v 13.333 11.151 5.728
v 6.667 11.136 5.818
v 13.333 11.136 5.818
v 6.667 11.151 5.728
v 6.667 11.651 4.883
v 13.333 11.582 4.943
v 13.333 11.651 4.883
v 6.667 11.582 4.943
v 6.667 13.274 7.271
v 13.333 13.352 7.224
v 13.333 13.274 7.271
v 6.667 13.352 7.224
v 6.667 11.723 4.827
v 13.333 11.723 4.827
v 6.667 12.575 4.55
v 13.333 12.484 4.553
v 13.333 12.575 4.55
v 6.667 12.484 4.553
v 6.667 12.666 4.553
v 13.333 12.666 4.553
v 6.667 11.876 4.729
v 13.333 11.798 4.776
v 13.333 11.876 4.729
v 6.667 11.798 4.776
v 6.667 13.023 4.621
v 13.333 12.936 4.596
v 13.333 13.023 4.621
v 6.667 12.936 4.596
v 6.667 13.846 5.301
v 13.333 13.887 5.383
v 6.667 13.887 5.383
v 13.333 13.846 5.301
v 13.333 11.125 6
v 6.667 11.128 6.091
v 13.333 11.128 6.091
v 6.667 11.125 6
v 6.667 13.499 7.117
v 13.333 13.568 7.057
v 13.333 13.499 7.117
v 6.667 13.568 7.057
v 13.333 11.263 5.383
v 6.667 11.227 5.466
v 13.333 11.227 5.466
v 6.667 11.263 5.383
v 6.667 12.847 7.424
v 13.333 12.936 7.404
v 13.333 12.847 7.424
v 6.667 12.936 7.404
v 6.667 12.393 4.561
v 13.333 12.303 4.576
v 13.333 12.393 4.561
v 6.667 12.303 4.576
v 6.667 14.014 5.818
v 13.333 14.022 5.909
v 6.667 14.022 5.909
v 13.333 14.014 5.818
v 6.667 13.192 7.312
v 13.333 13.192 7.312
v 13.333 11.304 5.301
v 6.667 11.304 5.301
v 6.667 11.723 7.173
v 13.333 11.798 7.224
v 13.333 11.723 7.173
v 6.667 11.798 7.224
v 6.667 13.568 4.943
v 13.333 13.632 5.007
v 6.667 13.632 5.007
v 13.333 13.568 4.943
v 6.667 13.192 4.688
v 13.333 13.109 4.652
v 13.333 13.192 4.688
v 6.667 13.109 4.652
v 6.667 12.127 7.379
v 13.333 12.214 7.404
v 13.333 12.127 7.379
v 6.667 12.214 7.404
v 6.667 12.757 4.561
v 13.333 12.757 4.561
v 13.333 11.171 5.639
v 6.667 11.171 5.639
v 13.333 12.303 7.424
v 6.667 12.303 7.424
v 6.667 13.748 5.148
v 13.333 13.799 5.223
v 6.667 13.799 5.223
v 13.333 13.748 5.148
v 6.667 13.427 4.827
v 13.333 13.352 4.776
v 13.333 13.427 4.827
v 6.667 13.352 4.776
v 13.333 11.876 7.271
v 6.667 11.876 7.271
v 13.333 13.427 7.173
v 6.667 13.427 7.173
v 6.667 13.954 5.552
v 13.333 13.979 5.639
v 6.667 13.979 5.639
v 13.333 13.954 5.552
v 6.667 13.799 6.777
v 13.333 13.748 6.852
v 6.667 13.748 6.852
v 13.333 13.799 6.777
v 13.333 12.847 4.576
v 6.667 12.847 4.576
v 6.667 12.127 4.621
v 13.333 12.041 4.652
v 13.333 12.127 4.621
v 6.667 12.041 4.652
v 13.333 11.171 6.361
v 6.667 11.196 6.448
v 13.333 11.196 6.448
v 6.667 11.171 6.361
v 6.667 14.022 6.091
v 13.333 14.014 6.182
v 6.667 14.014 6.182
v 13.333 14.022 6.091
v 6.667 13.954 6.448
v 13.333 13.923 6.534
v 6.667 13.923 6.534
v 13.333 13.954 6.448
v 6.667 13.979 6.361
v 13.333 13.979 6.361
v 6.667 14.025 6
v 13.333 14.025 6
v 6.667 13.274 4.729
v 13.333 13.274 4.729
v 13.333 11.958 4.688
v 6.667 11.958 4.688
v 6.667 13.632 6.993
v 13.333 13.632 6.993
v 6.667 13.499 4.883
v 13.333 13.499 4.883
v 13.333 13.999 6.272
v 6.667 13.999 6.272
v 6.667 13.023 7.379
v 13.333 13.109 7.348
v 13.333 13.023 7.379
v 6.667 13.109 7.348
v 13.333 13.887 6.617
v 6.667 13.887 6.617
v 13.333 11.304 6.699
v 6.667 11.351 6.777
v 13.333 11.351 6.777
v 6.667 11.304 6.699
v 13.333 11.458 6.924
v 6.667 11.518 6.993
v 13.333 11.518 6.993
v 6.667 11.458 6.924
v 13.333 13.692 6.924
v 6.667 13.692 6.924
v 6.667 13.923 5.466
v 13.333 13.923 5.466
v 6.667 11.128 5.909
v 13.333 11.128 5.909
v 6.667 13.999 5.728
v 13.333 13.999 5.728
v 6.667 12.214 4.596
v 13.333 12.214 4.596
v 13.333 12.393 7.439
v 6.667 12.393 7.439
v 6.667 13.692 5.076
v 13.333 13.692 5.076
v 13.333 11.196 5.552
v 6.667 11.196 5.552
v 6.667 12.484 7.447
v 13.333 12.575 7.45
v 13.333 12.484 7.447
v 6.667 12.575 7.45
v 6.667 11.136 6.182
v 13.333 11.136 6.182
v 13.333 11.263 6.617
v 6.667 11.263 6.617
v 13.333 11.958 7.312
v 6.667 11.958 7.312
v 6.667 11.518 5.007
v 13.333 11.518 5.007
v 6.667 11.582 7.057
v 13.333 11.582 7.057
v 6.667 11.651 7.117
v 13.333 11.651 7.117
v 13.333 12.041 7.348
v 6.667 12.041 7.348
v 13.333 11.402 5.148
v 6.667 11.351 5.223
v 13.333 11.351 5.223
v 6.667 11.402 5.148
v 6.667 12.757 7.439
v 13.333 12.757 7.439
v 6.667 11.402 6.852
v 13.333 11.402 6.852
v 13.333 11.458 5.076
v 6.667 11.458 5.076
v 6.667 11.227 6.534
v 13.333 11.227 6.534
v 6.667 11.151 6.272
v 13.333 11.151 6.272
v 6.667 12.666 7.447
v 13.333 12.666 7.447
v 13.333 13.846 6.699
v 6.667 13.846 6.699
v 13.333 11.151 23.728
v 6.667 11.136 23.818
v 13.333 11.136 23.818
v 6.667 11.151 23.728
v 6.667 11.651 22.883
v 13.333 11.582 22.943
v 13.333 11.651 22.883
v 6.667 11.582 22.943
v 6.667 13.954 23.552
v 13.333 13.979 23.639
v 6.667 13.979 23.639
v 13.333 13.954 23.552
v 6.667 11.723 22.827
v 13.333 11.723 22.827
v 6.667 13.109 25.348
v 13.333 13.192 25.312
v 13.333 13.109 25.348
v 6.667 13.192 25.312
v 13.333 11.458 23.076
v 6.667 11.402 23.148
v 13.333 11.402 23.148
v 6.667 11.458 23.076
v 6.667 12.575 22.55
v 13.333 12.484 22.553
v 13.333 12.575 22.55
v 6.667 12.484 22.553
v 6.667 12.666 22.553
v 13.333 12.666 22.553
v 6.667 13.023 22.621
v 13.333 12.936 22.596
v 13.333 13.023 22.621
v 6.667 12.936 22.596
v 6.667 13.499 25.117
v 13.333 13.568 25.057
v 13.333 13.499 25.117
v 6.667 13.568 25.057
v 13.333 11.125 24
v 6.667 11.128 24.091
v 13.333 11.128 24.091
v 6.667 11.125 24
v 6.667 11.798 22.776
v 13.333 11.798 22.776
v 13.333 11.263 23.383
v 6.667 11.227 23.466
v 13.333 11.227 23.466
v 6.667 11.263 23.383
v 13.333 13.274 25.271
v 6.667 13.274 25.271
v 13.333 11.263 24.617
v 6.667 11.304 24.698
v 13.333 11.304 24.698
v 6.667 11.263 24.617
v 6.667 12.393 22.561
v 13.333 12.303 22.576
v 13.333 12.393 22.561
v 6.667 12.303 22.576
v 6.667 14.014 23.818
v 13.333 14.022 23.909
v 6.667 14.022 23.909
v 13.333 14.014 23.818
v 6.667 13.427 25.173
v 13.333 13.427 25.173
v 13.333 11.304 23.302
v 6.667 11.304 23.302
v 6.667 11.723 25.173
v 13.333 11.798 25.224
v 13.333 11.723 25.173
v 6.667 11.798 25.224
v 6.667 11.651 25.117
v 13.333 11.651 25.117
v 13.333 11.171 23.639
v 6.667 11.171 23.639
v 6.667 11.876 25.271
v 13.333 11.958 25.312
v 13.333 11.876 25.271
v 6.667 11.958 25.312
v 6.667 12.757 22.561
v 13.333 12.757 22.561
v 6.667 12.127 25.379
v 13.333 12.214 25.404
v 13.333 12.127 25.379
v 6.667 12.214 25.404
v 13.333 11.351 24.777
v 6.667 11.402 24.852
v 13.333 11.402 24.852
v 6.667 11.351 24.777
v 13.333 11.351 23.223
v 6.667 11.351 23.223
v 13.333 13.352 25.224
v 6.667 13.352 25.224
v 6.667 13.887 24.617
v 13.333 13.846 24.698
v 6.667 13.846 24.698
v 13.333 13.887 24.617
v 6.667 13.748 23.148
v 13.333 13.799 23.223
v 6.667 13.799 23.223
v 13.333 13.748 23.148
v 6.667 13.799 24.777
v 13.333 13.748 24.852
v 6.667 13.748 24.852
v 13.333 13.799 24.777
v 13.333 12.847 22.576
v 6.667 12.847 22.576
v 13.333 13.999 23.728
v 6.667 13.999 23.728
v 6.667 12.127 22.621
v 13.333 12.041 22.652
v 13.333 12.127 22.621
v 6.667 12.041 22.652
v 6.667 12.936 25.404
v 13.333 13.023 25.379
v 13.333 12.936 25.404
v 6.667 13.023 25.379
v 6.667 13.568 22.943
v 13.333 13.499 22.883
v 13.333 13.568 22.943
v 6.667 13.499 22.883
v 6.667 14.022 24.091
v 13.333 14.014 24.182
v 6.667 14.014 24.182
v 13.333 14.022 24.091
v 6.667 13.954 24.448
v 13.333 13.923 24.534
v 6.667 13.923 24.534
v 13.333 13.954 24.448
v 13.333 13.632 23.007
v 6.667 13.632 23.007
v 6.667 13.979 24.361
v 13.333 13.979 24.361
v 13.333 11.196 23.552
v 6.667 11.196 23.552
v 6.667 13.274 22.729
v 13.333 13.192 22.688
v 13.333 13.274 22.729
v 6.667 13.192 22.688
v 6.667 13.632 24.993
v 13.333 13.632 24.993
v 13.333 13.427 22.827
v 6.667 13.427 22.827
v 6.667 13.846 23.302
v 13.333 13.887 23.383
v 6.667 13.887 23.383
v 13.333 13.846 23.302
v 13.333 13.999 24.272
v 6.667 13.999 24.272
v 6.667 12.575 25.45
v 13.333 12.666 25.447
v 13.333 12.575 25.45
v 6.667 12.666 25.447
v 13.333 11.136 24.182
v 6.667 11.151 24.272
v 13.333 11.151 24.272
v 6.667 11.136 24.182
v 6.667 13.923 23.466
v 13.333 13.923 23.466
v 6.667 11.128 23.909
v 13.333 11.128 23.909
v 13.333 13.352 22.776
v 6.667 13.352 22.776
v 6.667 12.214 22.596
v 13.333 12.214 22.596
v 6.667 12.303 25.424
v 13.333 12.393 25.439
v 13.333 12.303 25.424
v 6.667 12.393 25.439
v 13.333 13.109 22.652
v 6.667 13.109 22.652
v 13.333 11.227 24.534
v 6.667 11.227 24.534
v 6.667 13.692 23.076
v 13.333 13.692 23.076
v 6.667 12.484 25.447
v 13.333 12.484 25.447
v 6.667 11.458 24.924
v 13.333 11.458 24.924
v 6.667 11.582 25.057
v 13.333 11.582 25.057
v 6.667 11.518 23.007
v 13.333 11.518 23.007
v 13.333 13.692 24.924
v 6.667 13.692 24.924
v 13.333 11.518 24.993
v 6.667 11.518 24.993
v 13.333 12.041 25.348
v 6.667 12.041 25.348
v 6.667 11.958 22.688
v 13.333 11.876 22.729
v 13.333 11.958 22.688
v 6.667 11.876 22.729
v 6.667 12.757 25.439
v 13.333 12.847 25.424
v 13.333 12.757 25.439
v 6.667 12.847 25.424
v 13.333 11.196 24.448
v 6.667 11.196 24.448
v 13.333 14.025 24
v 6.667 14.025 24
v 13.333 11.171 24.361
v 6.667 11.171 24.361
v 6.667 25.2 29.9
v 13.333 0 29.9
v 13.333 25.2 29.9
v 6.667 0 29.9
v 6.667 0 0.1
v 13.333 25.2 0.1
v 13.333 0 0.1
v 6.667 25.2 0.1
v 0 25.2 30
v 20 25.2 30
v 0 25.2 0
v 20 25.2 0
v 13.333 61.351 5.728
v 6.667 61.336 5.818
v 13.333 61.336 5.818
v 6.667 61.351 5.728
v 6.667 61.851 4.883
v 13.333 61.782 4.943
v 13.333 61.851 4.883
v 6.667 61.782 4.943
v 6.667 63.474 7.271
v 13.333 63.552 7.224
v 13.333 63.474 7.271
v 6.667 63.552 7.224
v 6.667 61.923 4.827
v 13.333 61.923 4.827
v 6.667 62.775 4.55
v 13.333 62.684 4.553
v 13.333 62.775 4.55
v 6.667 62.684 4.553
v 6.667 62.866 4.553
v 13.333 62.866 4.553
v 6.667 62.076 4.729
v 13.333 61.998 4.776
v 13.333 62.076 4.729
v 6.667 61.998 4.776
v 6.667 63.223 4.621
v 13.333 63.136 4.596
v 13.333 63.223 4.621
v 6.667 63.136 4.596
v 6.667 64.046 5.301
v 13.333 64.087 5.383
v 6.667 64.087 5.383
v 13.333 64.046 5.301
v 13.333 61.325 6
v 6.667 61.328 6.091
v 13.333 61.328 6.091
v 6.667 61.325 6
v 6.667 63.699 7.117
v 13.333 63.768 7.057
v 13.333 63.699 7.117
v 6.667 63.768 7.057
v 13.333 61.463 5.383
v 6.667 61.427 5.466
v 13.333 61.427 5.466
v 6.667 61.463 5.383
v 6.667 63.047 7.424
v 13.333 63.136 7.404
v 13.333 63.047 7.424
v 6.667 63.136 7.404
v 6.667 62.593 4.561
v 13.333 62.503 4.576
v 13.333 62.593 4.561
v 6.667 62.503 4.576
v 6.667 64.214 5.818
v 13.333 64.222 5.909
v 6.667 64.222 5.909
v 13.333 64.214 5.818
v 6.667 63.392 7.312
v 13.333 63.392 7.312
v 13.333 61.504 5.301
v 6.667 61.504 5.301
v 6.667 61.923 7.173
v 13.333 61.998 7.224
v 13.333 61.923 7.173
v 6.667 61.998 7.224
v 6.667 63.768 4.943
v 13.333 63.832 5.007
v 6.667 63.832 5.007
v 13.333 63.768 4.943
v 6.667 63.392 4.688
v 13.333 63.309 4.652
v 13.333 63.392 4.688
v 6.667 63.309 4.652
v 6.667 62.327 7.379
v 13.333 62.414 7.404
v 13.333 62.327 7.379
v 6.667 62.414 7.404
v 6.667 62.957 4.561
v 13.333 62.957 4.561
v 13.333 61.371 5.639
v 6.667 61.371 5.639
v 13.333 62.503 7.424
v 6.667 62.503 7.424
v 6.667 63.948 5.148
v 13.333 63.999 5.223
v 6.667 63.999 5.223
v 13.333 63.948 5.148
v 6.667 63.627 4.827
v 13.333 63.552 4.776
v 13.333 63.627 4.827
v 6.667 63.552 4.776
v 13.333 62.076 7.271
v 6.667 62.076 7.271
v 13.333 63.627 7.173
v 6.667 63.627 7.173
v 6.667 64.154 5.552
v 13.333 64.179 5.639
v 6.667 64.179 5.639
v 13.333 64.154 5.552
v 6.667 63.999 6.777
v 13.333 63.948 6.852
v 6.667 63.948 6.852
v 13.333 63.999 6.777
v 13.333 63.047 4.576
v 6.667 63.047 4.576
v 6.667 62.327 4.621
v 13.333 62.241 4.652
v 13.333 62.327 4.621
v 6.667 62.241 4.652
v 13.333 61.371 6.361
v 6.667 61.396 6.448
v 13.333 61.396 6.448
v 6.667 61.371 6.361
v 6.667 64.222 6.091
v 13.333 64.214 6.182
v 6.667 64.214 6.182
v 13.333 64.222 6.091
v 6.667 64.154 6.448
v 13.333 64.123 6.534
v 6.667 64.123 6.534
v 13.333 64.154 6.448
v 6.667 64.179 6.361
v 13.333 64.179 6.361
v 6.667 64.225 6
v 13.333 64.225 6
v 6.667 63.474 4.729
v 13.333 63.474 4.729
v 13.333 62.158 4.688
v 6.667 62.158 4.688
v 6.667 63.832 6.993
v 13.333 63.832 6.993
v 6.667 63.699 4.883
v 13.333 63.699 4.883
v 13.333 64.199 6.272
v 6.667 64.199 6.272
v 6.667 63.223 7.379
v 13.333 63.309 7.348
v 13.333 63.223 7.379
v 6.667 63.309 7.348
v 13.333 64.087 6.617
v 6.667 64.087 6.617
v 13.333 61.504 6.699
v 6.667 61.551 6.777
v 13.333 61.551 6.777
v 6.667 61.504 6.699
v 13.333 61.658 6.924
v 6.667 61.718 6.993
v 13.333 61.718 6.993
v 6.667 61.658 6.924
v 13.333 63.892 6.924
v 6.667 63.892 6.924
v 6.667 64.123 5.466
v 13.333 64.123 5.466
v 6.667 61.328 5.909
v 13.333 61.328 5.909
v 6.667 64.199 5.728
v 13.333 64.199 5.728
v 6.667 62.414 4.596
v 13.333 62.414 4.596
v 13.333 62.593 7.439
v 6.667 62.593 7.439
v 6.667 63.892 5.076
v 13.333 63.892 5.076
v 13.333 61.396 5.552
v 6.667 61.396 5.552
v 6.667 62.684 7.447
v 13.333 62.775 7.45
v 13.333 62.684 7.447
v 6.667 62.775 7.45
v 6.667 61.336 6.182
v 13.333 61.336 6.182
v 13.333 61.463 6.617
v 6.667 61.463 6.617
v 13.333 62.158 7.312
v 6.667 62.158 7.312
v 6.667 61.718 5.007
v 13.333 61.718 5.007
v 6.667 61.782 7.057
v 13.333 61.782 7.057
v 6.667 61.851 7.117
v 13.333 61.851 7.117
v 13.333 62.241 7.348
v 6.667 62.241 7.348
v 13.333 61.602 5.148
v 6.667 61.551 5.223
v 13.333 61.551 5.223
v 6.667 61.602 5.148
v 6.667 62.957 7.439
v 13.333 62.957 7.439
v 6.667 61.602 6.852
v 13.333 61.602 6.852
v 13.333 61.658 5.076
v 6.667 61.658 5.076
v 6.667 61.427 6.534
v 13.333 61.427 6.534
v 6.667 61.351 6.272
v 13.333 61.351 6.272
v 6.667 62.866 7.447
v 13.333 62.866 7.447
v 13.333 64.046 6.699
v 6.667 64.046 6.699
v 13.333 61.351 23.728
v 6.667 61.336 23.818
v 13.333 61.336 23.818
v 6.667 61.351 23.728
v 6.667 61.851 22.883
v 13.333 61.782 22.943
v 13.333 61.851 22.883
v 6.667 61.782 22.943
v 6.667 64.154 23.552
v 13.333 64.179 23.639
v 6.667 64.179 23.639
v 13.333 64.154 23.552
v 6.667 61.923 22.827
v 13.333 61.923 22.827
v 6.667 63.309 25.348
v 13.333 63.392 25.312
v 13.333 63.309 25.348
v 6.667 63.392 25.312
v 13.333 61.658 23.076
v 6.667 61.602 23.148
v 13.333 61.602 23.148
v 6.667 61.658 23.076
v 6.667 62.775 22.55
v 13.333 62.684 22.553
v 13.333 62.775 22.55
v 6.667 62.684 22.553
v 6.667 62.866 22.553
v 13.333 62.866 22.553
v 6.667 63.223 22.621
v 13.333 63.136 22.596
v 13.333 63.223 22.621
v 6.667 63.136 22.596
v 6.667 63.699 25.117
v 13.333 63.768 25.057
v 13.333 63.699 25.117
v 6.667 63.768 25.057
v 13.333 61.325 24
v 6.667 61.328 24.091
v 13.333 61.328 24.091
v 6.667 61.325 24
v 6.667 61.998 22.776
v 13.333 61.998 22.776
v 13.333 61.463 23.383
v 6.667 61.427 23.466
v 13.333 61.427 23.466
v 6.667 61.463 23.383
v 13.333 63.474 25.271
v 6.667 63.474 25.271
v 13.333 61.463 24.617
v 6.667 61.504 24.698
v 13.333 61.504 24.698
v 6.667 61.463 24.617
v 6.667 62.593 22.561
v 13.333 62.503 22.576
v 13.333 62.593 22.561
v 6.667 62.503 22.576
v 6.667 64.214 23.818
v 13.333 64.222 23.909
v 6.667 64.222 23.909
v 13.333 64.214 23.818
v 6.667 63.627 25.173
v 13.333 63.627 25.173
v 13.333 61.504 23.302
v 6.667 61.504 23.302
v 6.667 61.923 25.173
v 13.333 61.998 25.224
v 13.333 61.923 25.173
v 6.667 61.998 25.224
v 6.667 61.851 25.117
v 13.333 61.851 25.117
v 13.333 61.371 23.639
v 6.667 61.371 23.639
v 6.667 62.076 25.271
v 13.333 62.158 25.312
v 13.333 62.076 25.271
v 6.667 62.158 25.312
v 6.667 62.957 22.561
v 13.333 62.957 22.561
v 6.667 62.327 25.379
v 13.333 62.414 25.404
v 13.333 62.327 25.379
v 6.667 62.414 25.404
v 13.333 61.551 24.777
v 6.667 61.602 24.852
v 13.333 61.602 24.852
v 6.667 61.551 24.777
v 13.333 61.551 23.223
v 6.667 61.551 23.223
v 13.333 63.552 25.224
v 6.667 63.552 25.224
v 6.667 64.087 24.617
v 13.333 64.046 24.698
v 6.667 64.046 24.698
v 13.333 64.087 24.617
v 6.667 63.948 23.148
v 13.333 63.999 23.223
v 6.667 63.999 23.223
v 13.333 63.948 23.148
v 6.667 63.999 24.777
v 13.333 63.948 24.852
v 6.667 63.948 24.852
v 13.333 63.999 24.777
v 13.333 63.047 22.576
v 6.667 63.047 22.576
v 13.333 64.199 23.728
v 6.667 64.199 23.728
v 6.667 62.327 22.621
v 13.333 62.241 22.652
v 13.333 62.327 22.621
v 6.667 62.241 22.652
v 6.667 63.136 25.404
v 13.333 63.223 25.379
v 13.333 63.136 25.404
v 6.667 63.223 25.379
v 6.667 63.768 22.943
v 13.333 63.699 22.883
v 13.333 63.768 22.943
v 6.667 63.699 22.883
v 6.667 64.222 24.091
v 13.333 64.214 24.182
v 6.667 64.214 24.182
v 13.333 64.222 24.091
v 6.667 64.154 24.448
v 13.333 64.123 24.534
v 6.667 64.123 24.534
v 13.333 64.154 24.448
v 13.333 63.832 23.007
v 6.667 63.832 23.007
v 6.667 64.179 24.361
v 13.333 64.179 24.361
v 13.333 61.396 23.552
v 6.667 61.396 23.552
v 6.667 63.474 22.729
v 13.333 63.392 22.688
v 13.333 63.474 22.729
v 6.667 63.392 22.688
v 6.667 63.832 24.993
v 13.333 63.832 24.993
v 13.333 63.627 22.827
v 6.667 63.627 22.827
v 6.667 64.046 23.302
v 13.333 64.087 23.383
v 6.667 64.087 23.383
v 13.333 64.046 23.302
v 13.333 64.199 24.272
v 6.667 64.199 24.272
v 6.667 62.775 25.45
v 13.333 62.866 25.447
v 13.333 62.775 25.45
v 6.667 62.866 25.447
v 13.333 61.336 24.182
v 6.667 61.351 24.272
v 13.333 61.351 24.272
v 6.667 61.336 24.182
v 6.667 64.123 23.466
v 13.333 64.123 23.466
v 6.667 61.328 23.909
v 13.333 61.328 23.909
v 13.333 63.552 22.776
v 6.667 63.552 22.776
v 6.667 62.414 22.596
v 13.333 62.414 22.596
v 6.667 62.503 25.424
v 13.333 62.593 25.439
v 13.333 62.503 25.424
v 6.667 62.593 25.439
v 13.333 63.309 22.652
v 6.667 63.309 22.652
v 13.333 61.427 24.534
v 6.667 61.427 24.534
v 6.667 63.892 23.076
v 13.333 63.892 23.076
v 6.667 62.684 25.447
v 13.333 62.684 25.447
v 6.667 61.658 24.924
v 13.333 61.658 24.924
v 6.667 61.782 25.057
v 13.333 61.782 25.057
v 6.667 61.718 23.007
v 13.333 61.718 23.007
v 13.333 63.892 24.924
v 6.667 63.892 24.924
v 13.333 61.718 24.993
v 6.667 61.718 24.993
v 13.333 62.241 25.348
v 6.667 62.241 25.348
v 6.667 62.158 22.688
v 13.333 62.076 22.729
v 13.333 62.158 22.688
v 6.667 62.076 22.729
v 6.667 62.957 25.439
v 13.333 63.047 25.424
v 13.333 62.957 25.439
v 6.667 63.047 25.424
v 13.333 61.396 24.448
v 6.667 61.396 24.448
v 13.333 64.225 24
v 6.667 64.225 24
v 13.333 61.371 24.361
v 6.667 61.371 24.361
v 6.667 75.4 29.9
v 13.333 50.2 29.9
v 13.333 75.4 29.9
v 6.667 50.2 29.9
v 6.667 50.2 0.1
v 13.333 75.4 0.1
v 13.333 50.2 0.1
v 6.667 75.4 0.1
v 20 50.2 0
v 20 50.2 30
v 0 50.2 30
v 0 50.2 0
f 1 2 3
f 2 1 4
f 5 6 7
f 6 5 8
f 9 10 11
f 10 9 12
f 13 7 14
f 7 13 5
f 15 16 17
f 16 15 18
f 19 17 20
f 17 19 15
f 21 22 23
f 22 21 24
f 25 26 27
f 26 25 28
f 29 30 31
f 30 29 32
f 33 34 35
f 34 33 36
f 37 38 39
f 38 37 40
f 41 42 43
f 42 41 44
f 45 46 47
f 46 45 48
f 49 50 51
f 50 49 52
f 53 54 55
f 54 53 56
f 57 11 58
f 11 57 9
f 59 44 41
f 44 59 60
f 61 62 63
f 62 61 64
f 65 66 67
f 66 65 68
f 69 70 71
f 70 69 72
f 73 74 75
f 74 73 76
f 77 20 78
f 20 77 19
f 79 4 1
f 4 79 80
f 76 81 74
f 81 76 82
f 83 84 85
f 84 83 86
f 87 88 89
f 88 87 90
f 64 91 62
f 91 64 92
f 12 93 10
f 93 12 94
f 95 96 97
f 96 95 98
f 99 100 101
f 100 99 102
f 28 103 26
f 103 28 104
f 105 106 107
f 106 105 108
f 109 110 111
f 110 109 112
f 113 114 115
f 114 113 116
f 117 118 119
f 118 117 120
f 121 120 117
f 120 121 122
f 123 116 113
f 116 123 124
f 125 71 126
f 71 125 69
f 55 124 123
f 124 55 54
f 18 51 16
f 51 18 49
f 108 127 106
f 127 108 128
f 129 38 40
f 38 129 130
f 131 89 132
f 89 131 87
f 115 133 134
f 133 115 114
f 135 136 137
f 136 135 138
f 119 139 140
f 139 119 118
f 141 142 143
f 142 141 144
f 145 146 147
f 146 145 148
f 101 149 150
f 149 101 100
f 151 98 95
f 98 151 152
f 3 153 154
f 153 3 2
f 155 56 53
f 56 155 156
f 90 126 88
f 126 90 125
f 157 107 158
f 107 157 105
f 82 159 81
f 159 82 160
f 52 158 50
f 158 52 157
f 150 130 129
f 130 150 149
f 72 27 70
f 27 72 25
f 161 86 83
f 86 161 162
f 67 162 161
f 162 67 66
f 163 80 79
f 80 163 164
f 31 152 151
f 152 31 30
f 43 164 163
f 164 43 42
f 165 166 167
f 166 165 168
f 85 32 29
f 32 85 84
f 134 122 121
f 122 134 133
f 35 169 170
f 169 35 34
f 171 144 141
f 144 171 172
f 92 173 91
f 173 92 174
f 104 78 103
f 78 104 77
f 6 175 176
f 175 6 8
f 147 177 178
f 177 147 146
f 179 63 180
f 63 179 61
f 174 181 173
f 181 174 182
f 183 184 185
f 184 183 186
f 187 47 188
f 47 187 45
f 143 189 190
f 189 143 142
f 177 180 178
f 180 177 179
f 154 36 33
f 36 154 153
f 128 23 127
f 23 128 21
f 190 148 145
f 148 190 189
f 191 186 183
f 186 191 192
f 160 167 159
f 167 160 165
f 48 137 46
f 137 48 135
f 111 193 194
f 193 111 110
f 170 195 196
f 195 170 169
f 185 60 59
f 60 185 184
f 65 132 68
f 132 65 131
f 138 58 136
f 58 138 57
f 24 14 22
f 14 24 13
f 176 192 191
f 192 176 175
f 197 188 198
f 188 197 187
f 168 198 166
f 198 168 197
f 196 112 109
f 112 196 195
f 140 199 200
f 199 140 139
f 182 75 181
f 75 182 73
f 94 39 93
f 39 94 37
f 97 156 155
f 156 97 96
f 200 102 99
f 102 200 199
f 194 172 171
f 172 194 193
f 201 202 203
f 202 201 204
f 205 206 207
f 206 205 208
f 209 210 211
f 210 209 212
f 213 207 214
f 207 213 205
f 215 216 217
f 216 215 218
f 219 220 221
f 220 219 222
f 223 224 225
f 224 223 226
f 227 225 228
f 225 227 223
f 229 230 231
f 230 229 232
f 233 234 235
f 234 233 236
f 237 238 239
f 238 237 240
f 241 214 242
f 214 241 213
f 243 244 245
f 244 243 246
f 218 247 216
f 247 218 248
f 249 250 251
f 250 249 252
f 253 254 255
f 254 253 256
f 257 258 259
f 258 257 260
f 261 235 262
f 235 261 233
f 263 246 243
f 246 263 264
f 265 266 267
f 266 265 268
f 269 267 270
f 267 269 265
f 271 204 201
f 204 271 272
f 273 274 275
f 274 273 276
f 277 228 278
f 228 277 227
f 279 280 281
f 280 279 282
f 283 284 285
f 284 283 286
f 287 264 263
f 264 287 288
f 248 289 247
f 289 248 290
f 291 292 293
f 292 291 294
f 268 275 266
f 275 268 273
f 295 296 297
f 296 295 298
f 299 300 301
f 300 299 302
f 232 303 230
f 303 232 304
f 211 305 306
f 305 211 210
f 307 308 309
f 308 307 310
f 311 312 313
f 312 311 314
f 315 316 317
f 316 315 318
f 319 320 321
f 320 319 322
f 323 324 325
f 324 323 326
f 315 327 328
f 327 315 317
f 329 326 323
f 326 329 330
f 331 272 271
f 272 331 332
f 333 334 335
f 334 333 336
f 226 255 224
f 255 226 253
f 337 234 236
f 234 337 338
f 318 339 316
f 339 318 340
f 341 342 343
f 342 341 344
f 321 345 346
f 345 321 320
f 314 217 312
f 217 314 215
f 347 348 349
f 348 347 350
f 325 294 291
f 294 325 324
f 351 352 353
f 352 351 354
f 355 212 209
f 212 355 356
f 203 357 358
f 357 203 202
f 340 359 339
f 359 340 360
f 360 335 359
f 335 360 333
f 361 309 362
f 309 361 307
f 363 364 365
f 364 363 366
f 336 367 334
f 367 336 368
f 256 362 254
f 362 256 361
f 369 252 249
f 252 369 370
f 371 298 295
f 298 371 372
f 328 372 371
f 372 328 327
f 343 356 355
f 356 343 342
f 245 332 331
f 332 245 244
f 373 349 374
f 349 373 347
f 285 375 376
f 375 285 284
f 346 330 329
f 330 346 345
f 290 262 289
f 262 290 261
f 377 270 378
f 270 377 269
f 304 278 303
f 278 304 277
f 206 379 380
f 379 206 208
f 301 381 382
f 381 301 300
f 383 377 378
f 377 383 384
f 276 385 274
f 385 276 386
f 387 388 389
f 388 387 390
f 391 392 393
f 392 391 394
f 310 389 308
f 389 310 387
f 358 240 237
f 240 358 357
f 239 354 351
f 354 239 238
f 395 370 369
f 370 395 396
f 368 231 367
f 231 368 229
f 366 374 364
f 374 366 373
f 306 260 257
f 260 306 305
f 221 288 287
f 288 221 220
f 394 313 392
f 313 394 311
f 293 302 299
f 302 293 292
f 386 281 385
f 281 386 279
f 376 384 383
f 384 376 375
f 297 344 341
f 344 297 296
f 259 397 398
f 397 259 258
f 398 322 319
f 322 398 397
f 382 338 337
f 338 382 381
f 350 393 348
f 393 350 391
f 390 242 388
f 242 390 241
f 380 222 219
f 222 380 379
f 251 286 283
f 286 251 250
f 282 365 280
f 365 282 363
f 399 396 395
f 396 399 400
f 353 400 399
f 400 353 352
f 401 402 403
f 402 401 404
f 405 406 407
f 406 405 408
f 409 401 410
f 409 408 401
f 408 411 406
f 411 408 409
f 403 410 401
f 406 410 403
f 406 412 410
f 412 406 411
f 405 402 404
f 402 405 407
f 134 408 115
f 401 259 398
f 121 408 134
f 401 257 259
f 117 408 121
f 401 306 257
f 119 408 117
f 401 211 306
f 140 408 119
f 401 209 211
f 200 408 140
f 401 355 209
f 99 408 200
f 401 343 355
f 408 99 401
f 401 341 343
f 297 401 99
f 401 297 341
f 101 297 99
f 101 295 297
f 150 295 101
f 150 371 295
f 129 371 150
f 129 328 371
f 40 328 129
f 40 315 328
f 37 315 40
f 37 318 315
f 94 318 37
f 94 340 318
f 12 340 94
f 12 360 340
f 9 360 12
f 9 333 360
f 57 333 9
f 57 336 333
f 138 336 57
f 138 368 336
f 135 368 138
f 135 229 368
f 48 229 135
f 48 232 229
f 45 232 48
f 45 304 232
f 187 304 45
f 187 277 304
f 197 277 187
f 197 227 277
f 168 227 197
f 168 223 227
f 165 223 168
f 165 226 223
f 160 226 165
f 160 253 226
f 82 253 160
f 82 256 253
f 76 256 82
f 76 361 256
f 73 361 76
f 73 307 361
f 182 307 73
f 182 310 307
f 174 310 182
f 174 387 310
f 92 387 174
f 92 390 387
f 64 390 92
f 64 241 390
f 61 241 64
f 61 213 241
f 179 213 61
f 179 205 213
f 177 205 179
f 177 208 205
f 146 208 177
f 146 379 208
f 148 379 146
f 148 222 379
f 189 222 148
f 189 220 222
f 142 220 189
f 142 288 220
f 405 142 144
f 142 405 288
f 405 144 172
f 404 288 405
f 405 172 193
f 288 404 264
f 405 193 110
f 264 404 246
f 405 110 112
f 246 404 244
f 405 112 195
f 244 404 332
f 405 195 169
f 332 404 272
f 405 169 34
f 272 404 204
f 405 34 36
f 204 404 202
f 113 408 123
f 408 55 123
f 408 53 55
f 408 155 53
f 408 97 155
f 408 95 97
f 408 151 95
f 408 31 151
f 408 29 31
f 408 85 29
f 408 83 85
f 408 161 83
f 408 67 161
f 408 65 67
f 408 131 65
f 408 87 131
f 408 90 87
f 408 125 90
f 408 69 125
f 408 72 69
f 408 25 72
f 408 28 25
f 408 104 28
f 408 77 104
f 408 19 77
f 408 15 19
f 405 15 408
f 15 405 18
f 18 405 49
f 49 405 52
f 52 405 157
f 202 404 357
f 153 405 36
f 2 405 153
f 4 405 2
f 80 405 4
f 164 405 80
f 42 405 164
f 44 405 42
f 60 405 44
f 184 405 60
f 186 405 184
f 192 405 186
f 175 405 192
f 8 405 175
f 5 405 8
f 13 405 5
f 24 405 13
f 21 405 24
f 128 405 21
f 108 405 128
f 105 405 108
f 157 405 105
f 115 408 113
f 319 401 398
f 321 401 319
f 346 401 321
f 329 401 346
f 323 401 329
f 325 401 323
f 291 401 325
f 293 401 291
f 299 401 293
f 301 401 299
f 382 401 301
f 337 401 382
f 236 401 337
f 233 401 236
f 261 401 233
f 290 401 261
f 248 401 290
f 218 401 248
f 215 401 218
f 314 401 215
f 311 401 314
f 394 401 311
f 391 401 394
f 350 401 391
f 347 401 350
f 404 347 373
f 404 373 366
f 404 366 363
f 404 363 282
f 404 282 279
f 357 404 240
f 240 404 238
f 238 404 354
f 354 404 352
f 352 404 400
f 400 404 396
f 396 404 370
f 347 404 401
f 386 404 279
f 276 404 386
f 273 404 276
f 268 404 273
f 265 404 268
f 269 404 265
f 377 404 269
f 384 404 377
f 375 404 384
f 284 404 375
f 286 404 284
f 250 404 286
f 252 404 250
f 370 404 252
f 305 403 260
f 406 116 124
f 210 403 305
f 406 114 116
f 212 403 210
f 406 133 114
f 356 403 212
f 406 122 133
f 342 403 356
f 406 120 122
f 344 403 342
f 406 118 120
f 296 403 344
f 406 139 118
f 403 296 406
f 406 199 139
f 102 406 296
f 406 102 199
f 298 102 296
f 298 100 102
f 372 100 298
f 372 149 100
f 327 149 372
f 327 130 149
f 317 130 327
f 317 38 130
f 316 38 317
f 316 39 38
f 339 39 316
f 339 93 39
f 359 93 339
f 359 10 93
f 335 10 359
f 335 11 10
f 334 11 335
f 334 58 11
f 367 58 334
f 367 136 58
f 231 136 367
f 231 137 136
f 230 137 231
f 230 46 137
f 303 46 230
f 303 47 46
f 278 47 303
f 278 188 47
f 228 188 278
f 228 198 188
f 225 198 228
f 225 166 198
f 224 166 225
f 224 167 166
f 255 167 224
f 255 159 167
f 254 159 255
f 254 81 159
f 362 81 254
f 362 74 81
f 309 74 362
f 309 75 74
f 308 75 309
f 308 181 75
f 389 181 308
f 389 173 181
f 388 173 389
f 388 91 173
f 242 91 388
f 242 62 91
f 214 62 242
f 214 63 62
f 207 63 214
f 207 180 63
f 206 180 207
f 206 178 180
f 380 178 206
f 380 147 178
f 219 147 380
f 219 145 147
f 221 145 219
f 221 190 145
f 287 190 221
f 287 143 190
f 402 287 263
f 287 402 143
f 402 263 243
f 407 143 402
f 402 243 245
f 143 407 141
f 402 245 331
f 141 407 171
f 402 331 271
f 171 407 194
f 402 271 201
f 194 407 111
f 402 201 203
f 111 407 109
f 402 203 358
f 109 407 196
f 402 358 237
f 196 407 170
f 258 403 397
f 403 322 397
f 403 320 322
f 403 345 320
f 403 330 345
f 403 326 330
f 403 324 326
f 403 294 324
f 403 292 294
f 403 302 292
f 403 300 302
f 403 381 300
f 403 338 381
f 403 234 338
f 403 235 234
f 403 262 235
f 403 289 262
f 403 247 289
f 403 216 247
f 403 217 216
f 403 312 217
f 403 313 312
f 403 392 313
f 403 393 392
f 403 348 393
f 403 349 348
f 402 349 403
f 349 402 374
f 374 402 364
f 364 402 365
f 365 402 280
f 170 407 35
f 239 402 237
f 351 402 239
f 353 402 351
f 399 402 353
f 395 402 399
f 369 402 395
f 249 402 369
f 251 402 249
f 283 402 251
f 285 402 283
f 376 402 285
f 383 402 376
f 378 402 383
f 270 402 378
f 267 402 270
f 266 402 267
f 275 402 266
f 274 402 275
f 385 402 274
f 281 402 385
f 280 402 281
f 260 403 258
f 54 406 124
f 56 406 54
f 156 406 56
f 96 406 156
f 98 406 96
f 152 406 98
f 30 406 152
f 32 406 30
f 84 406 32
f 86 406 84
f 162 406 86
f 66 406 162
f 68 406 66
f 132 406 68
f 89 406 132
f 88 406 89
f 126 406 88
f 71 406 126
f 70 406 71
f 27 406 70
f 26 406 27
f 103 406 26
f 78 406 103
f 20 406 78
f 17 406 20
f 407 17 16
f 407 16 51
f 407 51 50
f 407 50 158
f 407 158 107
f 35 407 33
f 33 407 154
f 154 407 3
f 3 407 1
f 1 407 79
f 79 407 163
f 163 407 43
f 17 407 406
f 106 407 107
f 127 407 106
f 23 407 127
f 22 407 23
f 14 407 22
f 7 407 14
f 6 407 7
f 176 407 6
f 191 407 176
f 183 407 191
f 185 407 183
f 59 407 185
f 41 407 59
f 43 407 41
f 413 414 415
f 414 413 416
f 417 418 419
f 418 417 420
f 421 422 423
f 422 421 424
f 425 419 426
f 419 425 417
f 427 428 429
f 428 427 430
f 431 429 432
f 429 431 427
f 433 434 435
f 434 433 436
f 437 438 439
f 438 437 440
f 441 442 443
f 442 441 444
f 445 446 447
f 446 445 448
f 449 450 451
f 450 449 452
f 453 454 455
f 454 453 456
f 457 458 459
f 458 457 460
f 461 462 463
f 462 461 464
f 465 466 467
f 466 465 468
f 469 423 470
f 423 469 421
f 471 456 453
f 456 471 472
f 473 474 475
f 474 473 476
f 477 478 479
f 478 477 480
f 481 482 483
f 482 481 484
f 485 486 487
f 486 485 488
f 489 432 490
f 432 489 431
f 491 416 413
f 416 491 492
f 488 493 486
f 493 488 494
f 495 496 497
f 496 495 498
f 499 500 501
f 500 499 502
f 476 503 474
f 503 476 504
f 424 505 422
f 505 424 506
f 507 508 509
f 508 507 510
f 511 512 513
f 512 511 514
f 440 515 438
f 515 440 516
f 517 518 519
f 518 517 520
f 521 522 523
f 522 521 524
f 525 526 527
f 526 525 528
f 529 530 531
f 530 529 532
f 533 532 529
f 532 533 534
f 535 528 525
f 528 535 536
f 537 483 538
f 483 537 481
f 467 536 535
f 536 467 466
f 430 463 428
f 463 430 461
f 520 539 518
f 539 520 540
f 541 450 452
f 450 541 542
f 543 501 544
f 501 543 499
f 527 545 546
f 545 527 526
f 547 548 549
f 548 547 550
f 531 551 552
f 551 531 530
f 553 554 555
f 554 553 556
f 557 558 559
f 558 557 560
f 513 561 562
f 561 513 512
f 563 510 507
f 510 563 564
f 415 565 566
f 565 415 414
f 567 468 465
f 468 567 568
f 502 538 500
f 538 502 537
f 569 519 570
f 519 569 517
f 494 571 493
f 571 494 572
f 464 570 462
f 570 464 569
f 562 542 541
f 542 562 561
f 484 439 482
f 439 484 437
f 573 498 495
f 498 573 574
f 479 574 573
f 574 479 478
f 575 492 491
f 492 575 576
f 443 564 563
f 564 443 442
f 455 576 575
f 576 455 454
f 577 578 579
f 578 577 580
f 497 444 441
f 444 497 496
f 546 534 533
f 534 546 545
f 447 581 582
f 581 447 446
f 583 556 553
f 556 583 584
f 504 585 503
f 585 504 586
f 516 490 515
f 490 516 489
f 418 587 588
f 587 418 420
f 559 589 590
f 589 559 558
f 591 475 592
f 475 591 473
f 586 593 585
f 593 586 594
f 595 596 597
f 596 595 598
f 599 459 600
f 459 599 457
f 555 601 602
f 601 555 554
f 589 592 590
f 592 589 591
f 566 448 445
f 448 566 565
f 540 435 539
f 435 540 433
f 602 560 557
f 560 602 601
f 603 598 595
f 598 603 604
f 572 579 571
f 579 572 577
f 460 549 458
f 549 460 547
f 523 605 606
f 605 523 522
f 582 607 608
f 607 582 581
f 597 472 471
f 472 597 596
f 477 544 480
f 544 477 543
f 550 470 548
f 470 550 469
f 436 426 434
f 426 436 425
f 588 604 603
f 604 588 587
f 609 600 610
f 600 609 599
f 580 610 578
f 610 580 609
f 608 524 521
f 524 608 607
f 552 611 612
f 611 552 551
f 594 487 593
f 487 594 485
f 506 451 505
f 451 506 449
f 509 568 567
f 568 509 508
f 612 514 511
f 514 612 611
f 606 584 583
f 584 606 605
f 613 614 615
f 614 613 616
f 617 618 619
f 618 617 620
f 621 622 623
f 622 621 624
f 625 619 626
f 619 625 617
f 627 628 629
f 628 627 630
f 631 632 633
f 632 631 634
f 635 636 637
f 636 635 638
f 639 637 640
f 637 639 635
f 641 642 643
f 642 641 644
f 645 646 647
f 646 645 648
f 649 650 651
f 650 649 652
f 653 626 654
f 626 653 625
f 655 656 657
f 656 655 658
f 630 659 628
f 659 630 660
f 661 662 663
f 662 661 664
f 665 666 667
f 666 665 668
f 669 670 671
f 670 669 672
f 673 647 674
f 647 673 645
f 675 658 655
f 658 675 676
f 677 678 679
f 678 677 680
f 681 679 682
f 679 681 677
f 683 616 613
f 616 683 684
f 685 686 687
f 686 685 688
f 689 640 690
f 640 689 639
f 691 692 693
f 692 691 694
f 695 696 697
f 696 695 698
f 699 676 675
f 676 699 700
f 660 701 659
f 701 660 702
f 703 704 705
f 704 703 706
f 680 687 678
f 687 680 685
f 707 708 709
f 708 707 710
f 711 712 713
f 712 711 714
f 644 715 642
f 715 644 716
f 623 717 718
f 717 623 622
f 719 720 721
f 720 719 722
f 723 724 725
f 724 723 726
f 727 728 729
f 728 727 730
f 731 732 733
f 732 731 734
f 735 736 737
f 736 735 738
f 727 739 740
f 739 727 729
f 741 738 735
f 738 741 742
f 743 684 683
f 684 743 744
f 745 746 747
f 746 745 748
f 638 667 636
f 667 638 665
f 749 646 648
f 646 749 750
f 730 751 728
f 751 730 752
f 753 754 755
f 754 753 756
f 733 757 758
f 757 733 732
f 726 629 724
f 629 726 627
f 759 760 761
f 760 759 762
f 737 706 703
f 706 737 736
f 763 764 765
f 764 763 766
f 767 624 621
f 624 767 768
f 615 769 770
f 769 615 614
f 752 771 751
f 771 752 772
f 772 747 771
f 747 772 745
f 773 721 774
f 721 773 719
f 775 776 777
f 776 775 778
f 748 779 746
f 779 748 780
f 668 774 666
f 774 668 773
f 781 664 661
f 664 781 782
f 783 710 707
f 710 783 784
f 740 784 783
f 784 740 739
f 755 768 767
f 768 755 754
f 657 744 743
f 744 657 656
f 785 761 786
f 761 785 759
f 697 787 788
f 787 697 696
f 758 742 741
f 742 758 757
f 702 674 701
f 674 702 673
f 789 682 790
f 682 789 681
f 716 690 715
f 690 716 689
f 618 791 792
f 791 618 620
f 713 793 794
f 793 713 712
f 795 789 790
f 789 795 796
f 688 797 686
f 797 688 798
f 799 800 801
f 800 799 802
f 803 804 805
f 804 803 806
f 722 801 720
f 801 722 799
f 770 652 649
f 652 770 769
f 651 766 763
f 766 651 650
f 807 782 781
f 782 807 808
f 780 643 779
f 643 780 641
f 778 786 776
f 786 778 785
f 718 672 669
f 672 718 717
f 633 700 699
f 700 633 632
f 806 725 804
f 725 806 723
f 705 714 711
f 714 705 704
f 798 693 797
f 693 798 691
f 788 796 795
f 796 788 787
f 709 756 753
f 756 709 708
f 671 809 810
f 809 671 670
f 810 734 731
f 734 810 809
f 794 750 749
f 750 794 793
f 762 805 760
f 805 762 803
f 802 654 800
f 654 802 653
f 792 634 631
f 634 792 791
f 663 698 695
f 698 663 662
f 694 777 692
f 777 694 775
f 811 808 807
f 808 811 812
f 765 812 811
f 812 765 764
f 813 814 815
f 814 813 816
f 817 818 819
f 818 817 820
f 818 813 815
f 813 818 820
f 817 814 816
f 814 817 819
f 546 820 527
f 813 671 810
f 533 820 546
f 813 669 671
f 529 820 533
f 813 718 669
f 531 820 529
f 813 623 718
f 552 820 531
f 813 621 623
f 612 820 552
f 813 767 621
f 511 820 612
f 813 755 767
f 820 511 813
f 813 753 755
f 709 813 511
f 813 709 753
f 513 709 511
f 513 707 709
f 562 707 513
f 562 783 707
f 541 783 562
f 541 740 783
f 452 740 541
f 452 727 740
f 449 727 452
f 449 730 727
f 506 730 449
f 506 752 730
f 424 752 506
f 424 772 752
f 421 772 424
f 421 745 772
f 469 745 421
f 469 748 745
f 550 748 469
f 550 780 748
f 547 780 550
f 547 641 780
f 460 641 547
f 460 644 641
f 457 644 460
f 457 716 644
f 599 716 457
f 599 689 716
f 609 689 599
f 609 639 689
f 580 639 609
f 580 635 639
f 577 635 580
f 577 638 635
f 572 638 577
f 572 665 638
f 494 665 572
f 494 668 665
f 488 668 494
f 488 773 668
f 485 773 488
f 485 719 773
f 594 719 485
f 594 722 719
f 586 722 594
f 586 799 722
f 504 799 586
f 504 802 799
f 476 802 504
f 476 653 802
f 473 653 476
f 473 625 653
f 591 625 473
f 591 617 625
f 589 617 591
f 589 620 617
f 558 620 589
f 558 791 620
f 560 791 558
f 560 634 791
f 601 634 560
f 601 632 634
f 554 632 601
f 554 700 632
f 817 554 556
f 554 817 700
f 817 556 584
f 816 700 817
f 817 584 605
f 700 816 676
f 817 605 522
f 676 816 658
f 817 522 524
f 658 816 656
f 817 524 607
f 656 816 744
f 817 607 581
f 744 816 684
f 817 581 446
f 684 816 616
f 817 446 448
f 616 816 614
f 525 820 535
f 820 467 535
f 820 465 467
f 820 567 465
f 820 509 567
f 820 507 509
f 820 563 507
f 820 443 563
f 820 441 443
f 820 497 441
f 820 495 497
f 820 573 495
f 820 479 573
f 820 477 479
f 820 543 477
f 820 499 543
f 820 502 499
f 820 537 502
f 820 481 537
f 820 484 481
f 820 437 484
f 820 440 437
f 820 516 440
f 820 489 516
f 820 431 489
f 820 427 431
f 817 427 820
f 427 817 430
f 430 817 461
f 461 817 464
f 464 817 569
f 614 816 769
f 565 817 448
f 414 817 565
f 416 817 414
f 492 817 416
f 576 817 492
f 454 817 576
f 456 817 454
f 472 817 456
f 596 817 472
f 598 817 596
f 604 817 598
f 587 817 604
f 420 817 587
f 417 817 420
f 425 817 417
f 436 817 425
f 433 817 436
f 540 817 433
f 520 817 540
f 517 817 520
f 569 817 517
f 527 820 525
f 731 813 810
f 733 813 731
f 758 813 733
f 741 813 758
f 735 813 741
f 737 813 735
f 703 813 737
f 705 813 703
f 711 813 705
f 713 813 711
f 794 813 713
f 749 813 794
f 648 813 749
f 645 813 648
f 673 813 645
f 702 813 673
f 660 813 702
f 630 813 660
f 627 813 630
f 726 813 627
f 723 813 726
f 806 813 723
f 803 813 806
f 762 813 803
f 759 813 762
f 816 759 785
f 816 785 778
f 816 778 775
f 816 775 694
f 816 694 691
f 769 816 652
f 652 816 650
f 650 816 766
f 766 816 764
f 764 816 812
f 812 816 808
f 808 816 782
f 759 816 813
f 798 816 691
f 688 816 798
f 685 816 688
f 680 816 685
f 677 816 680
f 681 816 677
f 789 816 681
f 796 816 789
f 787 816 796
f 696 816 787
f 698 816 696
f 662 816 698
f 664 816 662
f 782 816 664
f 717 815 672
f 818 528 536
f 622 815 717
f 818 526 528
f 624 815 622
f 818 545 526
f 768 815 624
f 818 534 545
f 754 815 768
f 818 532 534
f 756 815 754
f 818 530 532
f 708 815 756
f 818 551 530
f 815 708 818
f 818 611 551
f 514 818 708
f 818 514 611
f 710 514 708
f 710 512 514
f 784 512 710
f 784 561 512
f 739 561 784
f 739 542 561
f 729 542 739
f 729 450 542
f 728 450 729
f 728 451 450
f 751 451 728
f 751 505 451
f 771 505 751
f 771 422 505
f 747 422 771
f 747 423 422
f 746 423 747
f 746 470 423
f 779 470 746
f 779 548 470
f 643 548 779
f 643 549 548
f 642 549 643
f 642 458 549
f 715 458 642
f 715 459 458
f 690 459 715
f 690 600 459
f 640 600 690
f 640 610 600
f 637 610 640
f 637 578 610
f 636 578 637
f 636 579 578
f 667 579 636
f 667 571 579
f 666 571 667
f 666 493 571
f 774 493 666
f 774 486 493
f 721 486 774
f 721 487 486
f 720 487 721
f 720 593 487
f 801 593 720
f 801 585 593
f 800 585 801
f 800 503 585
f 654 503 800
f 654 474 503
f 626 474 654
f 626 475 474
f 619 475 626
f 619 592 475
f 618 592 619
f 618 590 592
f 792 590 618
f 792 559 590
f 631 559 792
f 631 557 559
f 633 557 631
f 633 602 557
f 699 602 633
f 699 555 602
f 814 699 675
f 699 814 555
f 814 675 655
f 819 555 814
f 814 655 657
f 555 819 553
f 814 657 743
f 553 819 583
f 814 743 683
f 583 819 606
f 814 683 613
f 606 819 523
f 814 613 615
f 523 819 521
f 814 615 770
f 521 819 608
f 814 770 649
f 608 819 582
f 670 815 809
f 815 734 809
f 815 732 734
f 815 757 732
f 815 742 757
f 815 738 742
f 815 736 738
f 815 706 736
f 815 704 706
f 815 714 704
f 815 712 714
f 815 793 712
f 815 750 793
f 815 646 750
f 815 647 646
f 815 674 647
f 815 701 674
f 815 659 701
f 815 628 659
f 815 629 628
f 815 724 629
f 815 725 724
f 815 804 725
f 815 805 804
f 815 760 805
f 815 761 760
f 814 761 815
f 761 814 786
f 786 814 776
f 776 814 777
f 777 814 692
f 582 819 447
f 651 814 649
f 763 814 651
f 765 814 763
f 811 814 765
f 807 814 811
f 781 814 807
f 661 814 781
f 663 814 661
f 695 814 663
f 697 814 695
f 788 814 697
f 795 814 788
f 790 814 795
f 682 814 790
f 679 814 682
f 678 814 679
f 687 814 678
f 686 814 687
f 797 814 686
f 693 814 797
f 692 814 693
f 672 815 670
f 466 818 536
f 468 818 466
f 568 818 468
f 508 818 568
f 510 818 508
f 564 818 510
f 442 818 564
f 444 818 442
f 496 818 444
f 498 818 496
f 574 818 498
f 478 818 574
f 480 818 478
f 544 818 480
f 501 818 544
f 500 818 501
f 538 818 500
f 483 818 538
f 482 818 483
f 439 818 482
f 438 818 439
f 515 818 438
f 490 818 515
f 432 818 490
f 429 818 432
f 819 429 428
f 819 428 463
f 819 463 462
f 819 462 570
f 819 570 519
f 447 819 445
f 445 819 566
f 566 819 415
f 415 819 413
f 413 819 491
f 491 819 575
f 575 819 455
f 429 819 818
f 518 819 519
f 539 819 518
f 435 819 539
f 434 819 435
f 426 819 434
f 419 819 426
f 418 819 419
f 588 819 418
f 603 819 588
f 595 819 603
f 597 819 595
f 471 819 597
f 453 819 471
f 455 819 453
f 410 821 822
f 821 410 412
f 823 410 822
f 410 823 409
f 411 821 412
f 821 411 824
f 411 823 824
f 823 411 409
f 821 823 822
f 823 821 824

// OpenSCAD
// file: ../shared_helper.scad
// Shared Helper variables and modules

// Variables
quality_value = 100;
$fn = quality_value;

// Screw Holes
m2_hole_diameter = 1.85; // 1.95;
m2_loose_diameter = 2.50;
m2_counter_sink_diameter = 3.80;
m2_counter_sink_length = 2.00;
m2_hole_offset = m2_hole_diameter / 2.0;
m2_hole_height = 100.00;
m2_nut_outer_width = 3.90;
m2_nut_outer_height = 4.40;
m2_nut_outer_depth = 1.50;
// M2_Counter_Sink_Depth

m3_hole_diameter = 2.9; // 2.8
m3_hole_offset = m3_hole_diameter / 2.0;
m3_hole_height = 100.00;
m3_head_diameter = 6.2;
m3_head_depth = 3.0; // 2.5??, 3.0

m4_hole_diameter = 3.85; // 3.90
m4_hole_offset = m4_hole_diameter / 2.0;
m4_hole_height = 100.00;
m4_head_diameter = 7.55;
m4_head_depth = 3.0; // 2.5??, 3.0

// Tolerances
hole_tight_tolerance = 0.05;
hole_loose_tolerance = 0.20;

// Springs
spring_diameter = 5.45;
spring_length = 35.00;

// Nails
brass_nail_diameter = 2.4; // 2.00; // 1.95 at the beginning it tapers
brass_nail_length = 29.54;
brass_nail_head_diameter = 3.20; // 3.00; // oval 2.84 - 3.1 mm
brass_nail_head_depth = 1.80; //1.00; // 1.80; // 2.00;

// General Variables
v_wheel_hole_diameter = 5.20;
v_wheel_offset = (v_wheel_hole_diameter / 2.0) + 2.0;

// Hot-End Holes
stand_off_hole_diameter = m3_hole_diameter;
stand_off_width_distance = 11.60 + stand_off_hole_diameter;

// Magnets
// Small Magnet (Neo)
small_magnet_height = 2.00; // ±2.00 1.97
small_magnet_diameter = 3.00; // ±3.00 // 2.98

// Medium Magnet (Neo)
medium_magnet_height = 2.96; // ±3.00
medium_magnet_diameter = 5.00;

// Large Magnet (ferrite)
large_magnet_height = 2.98; // ±3.00
large_magnet_diameter = 9.79; // ±10.00

// Switches
// D2F Switch
d2f_length = 12.88; // ±12.70
d2f_width = 5.84; // ±5.70
d2f_depth = 6.20; // ±7.00 (5 + 2) ... ±6.50
d2f_pins = 9.00 - 6.50;
d2f_plunger_length = 2.64;
d2f_plunger_width = 0.97; // ±1.00
d2f_plunger_depth = 0.39; // ±0.50
d2f_mount_hole_position = 2.10;
d2f_hole_position_from_centre = 2.85;
d2f_pin_pre_travel = 0.50;
d2f_mount_hole_shift = 4.40 + m2_hole_offset + m2_hole_offset;
d2f_switch_base = 0.2 + 0.7 + 1.50 + 0.55 - 1.0;
d2f_switch_hole_hight = 22.00;
d2f_extra_tolerance_for_switch_holes = 0.12;

// 10t85 Switch
10t85_length = 20.04; // ±19.90
10t85_width = 6.34; // ±6.40
10t85_depth = 10.64; // ±10.70
10t85_plunger_length = 3.28; // ±4.00
10t85_plunger_width = 1.96;
10t85_plunger_depth = 1.30;

// Creality Endstop Board, 2208 V2.0
// creality_endstop_hole_diameter = m3_hole_diameter + hole_loose_tolerance; // Hole is M3 sized but meant for a loose M2
creality_endstop_hole_diameter = m2_hole_diameter + hole_tight_tolerance;
creality_endstop_hole_offset = 15.00;
creality_endstop_board_height = 20.30;
creality_endstop_plug_height_extension = 2.00;
creality_endstop_board_width = 20.20;
creality_endstop_board_thickness = 1.30;
creality_endstop_board_pins_thickness = 3.20 - creality_endstop_board_thickness;
creality_endstop_board_switch_thickness = 8.50 - creality_endstop_board_thickness;
creality_endstop_board_back_space = 2.00; // Taken from the rail mount bracket
creality_endstop_board_back_height = 14.90;
creality_endstop_board_back_width = 16.80;
creality_endstop_back_thickness = 3.30;
creality_endstop_back_hole_wall_spacing = 1.50; //3.00;

// Small Tactile Switch
small_tactile_switch_length = 6.21;
small_tactile_switch_width = 6.17;
small_tactile_switch_depth = 3.18;
small_tactile_switch_plunger_diameter = 3.40;
small_tactile_switch_plunger_depth = 1.40;

// Large Tactile Switch
large_tactile_switch_length = 12.03;
large_tactile_switch_width = 11.95;
large_tactile_switch_depth = 3.12;
large_tactile_switch_plunger_length = 3.75;
large_tactile_switch_plunger_width = 3.70;
large_tactile_switch_plunger_depth = 3.94;

// Button
button_topper_top_diameter = 11.65;
button_topper_bottom_diameter = 12.96;
button_topper_depth = 5.64;
button_topper_bottom_depth = 4.38;

// Belts
// GT2

// Modules
// Creality Mounting Holes
module CrealityCounterSunkHotEndMountingHoles(total_casing_depth, casing_top_extension) {
  // Mounting holes with countersinking - horizontal, through-holes, properly positioned
  cylinder(d=m3_hole_diameter, h=total_casing_depth + 2.00, center=true);
  cylinder(d=m3_hole_diameter, h=total_casing_depth + 2.00, center=true);

  translate([stand_off_width_distance, 0, 0]) {
    cylinder(d=m3_hole_diameter, h=total_casing_depth + 2.00, center=true);
    cylinder(d=m3_head_diameter + hole_loose_tolerance, h=4 + m3_head_depth + 6 + 1.8 + casing_top_extension);
  }
}

module CrealityHotEndMountingHoles(total_casing_depth) {
  cylinder(d=m3_hole_diameter, h=total_casing_depth + 2.00, center=true);

  translate([stand_off_width_distance, 0, 0]) {
    cylinder(d=m3_hole_diameter, h=total_casing_depth + 2.00, center=true);
  }
}

module CrealityEndstopMountHoles(height, include_back_nut_cutout) {
  cylinder(d=creality_endstop_hole_diameter, h=height, center=true);

  translate([creality_endstop_hole_offset, 0, 0]) {
    cylinder(d=creality_endstop_hole_diameter, h=height, center=true);
  }

  if (include_back_nut_cutout) {
    back_depth = m2_nut_outer_depth;

    translate([-2.0, -2.0, 0]) {
      cube([m2_nut_outer_width, m2_nut_outer_height, back_depth]);

      translate([creality_endstop_hole_offset, 0, 0]) {
        cube([m2_nut_outer_width, m2_nut_outer_height, back_depth]);
      }
    }
  }
}

module CrealityEndstopBackSpace(base_cutout_extension) {
  // Smaller gap between screw holes
  translate([creality_endstop_hole_diameter + creality_endstop_back_hole_wall_spacing, 0.0, 0.0]) {
    cube([creality_endstop_board_back_width - 2 * (creality_endstop_hole_diameter + creality_endstop_back_hole_wall_spacing), base_cutout_extension, creality_endstop_back_thickness + 1.0]);
  }

  // Top gap part
  translate([0.0, base_cutout_extension, 0]) {
    cube([creality_endstop_board_back_width, (creality_endstop_board_back_height + base_cutout_extension), creality_endstop_back_thickness + 1.0]);
  }
}

// D2F Switch Mounting
module D2F_Switch_Space() { // Should be used as a negative / difference space
  // D2F Switch Space
  // switch_base = 0.2 + 0.7 + 1.50 + 0.55;
  // switch_base = 0.2 + 0.7 + 1.50 + 0.55 - 1.0;
  switch_base = d2f_switch_base;

  // cube([d2f_depth, d2f_width + 1.05 + 0.75 - 0.95, d2f_length + casing_top_edge_buffer]); // 1.05
  cube([d2f_length, (d2f_width + 2.00) + d2f_pins, d2f_depth]);
}

module D2F_Switch_Mount_Holes() {
  rotate([0, 0, 90]) {
    translate([0.0, d2f_hole_position_from_centre, 0.0]) {
      cylinder(d=m2_hole_diameter + hole_tight_tolerance + (d2f_extra_tolerance_for_switch_holes * 3), h=d2f_switch_hole_hight);
    }

    translate([0.0, -(d2f_hole_position_from_centre + m2_hole_offset), 0.0]) {
      cylinder(d=m2_hole_diameter + hole_tight_tolerance + (d2f_extra_tolerance_for_switch_holes * 3), h=d2f_switch_hole_hight);
    }
  }
}
// file: frame_bar_extension_25mm_base.scad
// Frame Bar Extension
// This extension piece connects two frame bars with a configurable middle section
include <../shared_helper.scad>;

revision = 1.1;

// TODO: Add in heat knurled insert
// TODO: Add in M4 Alternative
// TODO: Add in NUT Alternatives for M4 and M3
// TODO: Create female -> female, male -> male, male -> female

// Adjustable values
extension_length = 25.0;                  // Length of the extension middle section (adjustable)
hole_diameter = m3_hole_diameter;         // Using M3 holes from shared_helper

// Frame bar connector dimensions
connector_width = 20.0;                   // Width of the frame bar connector
connector_height = 30.0;                  // Height of the frame bar connector
mount_depth = 25.0;                       // Depth of the connector interfaces

// Hole specifications
hole_top_margin = 3.7 + (2.3);            // Distance from top edge to first hole center
hole_spacing = 13.4;                      // Distance between hole centers
hole_front_margin = 10.2 - (2.3) + 4.675; // Distance from front edge to hole centers

// Tolerance for better fit
fit_tolerance = 0.2;                      // Tolerance for male connector to fit into female

// Derived values
mounting_width_void = connector_width / 3.0;

module mounting_holes() {
  translate([0, hole_front_margin, hole_top_margin]) {
    rotate([0, 90, 0]) {
      cylinder(d=hole_diameter, h=100.00);
    }
  }
  translate([0, hole_front_margin, connector_height - hole_top_margin]) {
    rotate([0, 90, 0]) {
      cylinder(d=hole_diameter, h=100.00);
    }
  }
}

module female_mount() {
  difference() {
    cube([connector_width, mount_depth, connector_height]);
    // Mounting space
    translate([mounting_width_void, 0, 0]) {
      cube([mounting_width_void, mount_depth, connector_height]);
    }
    // Holes
    mounting_holes();
  }
}

module male_mount() {
  difference() {
    // Apply tolerance to the male connector width and height
    translate([fit_tolerance/2, 0, fit_tolerance/2]) {
      cube([connector_width - fit_tolerance, mount_depth + fit_tolerance, connector_height - fit_tolerance]);
    }

    // Mounting spaces - adjusted for the new position
    translate([fit_tolerance/2, 0, fit_tolerance/2]) {
      cube([mounting_width_void - fit_tolerance/2, mount_depth + fit_tolerance, connector_height - fit_tolerance]);
    }

    translate([connector_width - mounting_width_void, 0, fit_tolerance/2]) {
      cube([mounting_width_void - fit_tolerance/2, mount_depth + fit_tolerance, connector_height - fit_tolerance]);
    }

    // Holes - keep original positions to maintain alignment
    mounting_holes();
  }
}

module extension() {
  cube([connector_width, extension_length, connector_height]);
}
// main file
// Frame Bar Extension
// This extension piece connects two frame bars with a configurable middle section
include <frame_bar_extension_25mm_base.scad>;

revision = 1.1;

// TODO: Add in heat knurled insert
// TODO: Add in M4 Alternative
// TODO: Add in NUT Alternatives for M4 and M3
// TODO: Create female -> female, male -> male, male -> female

module frame_bar_extension() {
  union() {
    // female_mount();
    male_mount();

    translate([0, mount_depth + fit_tolerance, 0]) {
      extension();
    }

    translate([0, mount_depth + fit_tolerance + extension_length, 0]) {
      male_mount();
    }
  }
}

// Render the extension piece
frame_bar_extension();
